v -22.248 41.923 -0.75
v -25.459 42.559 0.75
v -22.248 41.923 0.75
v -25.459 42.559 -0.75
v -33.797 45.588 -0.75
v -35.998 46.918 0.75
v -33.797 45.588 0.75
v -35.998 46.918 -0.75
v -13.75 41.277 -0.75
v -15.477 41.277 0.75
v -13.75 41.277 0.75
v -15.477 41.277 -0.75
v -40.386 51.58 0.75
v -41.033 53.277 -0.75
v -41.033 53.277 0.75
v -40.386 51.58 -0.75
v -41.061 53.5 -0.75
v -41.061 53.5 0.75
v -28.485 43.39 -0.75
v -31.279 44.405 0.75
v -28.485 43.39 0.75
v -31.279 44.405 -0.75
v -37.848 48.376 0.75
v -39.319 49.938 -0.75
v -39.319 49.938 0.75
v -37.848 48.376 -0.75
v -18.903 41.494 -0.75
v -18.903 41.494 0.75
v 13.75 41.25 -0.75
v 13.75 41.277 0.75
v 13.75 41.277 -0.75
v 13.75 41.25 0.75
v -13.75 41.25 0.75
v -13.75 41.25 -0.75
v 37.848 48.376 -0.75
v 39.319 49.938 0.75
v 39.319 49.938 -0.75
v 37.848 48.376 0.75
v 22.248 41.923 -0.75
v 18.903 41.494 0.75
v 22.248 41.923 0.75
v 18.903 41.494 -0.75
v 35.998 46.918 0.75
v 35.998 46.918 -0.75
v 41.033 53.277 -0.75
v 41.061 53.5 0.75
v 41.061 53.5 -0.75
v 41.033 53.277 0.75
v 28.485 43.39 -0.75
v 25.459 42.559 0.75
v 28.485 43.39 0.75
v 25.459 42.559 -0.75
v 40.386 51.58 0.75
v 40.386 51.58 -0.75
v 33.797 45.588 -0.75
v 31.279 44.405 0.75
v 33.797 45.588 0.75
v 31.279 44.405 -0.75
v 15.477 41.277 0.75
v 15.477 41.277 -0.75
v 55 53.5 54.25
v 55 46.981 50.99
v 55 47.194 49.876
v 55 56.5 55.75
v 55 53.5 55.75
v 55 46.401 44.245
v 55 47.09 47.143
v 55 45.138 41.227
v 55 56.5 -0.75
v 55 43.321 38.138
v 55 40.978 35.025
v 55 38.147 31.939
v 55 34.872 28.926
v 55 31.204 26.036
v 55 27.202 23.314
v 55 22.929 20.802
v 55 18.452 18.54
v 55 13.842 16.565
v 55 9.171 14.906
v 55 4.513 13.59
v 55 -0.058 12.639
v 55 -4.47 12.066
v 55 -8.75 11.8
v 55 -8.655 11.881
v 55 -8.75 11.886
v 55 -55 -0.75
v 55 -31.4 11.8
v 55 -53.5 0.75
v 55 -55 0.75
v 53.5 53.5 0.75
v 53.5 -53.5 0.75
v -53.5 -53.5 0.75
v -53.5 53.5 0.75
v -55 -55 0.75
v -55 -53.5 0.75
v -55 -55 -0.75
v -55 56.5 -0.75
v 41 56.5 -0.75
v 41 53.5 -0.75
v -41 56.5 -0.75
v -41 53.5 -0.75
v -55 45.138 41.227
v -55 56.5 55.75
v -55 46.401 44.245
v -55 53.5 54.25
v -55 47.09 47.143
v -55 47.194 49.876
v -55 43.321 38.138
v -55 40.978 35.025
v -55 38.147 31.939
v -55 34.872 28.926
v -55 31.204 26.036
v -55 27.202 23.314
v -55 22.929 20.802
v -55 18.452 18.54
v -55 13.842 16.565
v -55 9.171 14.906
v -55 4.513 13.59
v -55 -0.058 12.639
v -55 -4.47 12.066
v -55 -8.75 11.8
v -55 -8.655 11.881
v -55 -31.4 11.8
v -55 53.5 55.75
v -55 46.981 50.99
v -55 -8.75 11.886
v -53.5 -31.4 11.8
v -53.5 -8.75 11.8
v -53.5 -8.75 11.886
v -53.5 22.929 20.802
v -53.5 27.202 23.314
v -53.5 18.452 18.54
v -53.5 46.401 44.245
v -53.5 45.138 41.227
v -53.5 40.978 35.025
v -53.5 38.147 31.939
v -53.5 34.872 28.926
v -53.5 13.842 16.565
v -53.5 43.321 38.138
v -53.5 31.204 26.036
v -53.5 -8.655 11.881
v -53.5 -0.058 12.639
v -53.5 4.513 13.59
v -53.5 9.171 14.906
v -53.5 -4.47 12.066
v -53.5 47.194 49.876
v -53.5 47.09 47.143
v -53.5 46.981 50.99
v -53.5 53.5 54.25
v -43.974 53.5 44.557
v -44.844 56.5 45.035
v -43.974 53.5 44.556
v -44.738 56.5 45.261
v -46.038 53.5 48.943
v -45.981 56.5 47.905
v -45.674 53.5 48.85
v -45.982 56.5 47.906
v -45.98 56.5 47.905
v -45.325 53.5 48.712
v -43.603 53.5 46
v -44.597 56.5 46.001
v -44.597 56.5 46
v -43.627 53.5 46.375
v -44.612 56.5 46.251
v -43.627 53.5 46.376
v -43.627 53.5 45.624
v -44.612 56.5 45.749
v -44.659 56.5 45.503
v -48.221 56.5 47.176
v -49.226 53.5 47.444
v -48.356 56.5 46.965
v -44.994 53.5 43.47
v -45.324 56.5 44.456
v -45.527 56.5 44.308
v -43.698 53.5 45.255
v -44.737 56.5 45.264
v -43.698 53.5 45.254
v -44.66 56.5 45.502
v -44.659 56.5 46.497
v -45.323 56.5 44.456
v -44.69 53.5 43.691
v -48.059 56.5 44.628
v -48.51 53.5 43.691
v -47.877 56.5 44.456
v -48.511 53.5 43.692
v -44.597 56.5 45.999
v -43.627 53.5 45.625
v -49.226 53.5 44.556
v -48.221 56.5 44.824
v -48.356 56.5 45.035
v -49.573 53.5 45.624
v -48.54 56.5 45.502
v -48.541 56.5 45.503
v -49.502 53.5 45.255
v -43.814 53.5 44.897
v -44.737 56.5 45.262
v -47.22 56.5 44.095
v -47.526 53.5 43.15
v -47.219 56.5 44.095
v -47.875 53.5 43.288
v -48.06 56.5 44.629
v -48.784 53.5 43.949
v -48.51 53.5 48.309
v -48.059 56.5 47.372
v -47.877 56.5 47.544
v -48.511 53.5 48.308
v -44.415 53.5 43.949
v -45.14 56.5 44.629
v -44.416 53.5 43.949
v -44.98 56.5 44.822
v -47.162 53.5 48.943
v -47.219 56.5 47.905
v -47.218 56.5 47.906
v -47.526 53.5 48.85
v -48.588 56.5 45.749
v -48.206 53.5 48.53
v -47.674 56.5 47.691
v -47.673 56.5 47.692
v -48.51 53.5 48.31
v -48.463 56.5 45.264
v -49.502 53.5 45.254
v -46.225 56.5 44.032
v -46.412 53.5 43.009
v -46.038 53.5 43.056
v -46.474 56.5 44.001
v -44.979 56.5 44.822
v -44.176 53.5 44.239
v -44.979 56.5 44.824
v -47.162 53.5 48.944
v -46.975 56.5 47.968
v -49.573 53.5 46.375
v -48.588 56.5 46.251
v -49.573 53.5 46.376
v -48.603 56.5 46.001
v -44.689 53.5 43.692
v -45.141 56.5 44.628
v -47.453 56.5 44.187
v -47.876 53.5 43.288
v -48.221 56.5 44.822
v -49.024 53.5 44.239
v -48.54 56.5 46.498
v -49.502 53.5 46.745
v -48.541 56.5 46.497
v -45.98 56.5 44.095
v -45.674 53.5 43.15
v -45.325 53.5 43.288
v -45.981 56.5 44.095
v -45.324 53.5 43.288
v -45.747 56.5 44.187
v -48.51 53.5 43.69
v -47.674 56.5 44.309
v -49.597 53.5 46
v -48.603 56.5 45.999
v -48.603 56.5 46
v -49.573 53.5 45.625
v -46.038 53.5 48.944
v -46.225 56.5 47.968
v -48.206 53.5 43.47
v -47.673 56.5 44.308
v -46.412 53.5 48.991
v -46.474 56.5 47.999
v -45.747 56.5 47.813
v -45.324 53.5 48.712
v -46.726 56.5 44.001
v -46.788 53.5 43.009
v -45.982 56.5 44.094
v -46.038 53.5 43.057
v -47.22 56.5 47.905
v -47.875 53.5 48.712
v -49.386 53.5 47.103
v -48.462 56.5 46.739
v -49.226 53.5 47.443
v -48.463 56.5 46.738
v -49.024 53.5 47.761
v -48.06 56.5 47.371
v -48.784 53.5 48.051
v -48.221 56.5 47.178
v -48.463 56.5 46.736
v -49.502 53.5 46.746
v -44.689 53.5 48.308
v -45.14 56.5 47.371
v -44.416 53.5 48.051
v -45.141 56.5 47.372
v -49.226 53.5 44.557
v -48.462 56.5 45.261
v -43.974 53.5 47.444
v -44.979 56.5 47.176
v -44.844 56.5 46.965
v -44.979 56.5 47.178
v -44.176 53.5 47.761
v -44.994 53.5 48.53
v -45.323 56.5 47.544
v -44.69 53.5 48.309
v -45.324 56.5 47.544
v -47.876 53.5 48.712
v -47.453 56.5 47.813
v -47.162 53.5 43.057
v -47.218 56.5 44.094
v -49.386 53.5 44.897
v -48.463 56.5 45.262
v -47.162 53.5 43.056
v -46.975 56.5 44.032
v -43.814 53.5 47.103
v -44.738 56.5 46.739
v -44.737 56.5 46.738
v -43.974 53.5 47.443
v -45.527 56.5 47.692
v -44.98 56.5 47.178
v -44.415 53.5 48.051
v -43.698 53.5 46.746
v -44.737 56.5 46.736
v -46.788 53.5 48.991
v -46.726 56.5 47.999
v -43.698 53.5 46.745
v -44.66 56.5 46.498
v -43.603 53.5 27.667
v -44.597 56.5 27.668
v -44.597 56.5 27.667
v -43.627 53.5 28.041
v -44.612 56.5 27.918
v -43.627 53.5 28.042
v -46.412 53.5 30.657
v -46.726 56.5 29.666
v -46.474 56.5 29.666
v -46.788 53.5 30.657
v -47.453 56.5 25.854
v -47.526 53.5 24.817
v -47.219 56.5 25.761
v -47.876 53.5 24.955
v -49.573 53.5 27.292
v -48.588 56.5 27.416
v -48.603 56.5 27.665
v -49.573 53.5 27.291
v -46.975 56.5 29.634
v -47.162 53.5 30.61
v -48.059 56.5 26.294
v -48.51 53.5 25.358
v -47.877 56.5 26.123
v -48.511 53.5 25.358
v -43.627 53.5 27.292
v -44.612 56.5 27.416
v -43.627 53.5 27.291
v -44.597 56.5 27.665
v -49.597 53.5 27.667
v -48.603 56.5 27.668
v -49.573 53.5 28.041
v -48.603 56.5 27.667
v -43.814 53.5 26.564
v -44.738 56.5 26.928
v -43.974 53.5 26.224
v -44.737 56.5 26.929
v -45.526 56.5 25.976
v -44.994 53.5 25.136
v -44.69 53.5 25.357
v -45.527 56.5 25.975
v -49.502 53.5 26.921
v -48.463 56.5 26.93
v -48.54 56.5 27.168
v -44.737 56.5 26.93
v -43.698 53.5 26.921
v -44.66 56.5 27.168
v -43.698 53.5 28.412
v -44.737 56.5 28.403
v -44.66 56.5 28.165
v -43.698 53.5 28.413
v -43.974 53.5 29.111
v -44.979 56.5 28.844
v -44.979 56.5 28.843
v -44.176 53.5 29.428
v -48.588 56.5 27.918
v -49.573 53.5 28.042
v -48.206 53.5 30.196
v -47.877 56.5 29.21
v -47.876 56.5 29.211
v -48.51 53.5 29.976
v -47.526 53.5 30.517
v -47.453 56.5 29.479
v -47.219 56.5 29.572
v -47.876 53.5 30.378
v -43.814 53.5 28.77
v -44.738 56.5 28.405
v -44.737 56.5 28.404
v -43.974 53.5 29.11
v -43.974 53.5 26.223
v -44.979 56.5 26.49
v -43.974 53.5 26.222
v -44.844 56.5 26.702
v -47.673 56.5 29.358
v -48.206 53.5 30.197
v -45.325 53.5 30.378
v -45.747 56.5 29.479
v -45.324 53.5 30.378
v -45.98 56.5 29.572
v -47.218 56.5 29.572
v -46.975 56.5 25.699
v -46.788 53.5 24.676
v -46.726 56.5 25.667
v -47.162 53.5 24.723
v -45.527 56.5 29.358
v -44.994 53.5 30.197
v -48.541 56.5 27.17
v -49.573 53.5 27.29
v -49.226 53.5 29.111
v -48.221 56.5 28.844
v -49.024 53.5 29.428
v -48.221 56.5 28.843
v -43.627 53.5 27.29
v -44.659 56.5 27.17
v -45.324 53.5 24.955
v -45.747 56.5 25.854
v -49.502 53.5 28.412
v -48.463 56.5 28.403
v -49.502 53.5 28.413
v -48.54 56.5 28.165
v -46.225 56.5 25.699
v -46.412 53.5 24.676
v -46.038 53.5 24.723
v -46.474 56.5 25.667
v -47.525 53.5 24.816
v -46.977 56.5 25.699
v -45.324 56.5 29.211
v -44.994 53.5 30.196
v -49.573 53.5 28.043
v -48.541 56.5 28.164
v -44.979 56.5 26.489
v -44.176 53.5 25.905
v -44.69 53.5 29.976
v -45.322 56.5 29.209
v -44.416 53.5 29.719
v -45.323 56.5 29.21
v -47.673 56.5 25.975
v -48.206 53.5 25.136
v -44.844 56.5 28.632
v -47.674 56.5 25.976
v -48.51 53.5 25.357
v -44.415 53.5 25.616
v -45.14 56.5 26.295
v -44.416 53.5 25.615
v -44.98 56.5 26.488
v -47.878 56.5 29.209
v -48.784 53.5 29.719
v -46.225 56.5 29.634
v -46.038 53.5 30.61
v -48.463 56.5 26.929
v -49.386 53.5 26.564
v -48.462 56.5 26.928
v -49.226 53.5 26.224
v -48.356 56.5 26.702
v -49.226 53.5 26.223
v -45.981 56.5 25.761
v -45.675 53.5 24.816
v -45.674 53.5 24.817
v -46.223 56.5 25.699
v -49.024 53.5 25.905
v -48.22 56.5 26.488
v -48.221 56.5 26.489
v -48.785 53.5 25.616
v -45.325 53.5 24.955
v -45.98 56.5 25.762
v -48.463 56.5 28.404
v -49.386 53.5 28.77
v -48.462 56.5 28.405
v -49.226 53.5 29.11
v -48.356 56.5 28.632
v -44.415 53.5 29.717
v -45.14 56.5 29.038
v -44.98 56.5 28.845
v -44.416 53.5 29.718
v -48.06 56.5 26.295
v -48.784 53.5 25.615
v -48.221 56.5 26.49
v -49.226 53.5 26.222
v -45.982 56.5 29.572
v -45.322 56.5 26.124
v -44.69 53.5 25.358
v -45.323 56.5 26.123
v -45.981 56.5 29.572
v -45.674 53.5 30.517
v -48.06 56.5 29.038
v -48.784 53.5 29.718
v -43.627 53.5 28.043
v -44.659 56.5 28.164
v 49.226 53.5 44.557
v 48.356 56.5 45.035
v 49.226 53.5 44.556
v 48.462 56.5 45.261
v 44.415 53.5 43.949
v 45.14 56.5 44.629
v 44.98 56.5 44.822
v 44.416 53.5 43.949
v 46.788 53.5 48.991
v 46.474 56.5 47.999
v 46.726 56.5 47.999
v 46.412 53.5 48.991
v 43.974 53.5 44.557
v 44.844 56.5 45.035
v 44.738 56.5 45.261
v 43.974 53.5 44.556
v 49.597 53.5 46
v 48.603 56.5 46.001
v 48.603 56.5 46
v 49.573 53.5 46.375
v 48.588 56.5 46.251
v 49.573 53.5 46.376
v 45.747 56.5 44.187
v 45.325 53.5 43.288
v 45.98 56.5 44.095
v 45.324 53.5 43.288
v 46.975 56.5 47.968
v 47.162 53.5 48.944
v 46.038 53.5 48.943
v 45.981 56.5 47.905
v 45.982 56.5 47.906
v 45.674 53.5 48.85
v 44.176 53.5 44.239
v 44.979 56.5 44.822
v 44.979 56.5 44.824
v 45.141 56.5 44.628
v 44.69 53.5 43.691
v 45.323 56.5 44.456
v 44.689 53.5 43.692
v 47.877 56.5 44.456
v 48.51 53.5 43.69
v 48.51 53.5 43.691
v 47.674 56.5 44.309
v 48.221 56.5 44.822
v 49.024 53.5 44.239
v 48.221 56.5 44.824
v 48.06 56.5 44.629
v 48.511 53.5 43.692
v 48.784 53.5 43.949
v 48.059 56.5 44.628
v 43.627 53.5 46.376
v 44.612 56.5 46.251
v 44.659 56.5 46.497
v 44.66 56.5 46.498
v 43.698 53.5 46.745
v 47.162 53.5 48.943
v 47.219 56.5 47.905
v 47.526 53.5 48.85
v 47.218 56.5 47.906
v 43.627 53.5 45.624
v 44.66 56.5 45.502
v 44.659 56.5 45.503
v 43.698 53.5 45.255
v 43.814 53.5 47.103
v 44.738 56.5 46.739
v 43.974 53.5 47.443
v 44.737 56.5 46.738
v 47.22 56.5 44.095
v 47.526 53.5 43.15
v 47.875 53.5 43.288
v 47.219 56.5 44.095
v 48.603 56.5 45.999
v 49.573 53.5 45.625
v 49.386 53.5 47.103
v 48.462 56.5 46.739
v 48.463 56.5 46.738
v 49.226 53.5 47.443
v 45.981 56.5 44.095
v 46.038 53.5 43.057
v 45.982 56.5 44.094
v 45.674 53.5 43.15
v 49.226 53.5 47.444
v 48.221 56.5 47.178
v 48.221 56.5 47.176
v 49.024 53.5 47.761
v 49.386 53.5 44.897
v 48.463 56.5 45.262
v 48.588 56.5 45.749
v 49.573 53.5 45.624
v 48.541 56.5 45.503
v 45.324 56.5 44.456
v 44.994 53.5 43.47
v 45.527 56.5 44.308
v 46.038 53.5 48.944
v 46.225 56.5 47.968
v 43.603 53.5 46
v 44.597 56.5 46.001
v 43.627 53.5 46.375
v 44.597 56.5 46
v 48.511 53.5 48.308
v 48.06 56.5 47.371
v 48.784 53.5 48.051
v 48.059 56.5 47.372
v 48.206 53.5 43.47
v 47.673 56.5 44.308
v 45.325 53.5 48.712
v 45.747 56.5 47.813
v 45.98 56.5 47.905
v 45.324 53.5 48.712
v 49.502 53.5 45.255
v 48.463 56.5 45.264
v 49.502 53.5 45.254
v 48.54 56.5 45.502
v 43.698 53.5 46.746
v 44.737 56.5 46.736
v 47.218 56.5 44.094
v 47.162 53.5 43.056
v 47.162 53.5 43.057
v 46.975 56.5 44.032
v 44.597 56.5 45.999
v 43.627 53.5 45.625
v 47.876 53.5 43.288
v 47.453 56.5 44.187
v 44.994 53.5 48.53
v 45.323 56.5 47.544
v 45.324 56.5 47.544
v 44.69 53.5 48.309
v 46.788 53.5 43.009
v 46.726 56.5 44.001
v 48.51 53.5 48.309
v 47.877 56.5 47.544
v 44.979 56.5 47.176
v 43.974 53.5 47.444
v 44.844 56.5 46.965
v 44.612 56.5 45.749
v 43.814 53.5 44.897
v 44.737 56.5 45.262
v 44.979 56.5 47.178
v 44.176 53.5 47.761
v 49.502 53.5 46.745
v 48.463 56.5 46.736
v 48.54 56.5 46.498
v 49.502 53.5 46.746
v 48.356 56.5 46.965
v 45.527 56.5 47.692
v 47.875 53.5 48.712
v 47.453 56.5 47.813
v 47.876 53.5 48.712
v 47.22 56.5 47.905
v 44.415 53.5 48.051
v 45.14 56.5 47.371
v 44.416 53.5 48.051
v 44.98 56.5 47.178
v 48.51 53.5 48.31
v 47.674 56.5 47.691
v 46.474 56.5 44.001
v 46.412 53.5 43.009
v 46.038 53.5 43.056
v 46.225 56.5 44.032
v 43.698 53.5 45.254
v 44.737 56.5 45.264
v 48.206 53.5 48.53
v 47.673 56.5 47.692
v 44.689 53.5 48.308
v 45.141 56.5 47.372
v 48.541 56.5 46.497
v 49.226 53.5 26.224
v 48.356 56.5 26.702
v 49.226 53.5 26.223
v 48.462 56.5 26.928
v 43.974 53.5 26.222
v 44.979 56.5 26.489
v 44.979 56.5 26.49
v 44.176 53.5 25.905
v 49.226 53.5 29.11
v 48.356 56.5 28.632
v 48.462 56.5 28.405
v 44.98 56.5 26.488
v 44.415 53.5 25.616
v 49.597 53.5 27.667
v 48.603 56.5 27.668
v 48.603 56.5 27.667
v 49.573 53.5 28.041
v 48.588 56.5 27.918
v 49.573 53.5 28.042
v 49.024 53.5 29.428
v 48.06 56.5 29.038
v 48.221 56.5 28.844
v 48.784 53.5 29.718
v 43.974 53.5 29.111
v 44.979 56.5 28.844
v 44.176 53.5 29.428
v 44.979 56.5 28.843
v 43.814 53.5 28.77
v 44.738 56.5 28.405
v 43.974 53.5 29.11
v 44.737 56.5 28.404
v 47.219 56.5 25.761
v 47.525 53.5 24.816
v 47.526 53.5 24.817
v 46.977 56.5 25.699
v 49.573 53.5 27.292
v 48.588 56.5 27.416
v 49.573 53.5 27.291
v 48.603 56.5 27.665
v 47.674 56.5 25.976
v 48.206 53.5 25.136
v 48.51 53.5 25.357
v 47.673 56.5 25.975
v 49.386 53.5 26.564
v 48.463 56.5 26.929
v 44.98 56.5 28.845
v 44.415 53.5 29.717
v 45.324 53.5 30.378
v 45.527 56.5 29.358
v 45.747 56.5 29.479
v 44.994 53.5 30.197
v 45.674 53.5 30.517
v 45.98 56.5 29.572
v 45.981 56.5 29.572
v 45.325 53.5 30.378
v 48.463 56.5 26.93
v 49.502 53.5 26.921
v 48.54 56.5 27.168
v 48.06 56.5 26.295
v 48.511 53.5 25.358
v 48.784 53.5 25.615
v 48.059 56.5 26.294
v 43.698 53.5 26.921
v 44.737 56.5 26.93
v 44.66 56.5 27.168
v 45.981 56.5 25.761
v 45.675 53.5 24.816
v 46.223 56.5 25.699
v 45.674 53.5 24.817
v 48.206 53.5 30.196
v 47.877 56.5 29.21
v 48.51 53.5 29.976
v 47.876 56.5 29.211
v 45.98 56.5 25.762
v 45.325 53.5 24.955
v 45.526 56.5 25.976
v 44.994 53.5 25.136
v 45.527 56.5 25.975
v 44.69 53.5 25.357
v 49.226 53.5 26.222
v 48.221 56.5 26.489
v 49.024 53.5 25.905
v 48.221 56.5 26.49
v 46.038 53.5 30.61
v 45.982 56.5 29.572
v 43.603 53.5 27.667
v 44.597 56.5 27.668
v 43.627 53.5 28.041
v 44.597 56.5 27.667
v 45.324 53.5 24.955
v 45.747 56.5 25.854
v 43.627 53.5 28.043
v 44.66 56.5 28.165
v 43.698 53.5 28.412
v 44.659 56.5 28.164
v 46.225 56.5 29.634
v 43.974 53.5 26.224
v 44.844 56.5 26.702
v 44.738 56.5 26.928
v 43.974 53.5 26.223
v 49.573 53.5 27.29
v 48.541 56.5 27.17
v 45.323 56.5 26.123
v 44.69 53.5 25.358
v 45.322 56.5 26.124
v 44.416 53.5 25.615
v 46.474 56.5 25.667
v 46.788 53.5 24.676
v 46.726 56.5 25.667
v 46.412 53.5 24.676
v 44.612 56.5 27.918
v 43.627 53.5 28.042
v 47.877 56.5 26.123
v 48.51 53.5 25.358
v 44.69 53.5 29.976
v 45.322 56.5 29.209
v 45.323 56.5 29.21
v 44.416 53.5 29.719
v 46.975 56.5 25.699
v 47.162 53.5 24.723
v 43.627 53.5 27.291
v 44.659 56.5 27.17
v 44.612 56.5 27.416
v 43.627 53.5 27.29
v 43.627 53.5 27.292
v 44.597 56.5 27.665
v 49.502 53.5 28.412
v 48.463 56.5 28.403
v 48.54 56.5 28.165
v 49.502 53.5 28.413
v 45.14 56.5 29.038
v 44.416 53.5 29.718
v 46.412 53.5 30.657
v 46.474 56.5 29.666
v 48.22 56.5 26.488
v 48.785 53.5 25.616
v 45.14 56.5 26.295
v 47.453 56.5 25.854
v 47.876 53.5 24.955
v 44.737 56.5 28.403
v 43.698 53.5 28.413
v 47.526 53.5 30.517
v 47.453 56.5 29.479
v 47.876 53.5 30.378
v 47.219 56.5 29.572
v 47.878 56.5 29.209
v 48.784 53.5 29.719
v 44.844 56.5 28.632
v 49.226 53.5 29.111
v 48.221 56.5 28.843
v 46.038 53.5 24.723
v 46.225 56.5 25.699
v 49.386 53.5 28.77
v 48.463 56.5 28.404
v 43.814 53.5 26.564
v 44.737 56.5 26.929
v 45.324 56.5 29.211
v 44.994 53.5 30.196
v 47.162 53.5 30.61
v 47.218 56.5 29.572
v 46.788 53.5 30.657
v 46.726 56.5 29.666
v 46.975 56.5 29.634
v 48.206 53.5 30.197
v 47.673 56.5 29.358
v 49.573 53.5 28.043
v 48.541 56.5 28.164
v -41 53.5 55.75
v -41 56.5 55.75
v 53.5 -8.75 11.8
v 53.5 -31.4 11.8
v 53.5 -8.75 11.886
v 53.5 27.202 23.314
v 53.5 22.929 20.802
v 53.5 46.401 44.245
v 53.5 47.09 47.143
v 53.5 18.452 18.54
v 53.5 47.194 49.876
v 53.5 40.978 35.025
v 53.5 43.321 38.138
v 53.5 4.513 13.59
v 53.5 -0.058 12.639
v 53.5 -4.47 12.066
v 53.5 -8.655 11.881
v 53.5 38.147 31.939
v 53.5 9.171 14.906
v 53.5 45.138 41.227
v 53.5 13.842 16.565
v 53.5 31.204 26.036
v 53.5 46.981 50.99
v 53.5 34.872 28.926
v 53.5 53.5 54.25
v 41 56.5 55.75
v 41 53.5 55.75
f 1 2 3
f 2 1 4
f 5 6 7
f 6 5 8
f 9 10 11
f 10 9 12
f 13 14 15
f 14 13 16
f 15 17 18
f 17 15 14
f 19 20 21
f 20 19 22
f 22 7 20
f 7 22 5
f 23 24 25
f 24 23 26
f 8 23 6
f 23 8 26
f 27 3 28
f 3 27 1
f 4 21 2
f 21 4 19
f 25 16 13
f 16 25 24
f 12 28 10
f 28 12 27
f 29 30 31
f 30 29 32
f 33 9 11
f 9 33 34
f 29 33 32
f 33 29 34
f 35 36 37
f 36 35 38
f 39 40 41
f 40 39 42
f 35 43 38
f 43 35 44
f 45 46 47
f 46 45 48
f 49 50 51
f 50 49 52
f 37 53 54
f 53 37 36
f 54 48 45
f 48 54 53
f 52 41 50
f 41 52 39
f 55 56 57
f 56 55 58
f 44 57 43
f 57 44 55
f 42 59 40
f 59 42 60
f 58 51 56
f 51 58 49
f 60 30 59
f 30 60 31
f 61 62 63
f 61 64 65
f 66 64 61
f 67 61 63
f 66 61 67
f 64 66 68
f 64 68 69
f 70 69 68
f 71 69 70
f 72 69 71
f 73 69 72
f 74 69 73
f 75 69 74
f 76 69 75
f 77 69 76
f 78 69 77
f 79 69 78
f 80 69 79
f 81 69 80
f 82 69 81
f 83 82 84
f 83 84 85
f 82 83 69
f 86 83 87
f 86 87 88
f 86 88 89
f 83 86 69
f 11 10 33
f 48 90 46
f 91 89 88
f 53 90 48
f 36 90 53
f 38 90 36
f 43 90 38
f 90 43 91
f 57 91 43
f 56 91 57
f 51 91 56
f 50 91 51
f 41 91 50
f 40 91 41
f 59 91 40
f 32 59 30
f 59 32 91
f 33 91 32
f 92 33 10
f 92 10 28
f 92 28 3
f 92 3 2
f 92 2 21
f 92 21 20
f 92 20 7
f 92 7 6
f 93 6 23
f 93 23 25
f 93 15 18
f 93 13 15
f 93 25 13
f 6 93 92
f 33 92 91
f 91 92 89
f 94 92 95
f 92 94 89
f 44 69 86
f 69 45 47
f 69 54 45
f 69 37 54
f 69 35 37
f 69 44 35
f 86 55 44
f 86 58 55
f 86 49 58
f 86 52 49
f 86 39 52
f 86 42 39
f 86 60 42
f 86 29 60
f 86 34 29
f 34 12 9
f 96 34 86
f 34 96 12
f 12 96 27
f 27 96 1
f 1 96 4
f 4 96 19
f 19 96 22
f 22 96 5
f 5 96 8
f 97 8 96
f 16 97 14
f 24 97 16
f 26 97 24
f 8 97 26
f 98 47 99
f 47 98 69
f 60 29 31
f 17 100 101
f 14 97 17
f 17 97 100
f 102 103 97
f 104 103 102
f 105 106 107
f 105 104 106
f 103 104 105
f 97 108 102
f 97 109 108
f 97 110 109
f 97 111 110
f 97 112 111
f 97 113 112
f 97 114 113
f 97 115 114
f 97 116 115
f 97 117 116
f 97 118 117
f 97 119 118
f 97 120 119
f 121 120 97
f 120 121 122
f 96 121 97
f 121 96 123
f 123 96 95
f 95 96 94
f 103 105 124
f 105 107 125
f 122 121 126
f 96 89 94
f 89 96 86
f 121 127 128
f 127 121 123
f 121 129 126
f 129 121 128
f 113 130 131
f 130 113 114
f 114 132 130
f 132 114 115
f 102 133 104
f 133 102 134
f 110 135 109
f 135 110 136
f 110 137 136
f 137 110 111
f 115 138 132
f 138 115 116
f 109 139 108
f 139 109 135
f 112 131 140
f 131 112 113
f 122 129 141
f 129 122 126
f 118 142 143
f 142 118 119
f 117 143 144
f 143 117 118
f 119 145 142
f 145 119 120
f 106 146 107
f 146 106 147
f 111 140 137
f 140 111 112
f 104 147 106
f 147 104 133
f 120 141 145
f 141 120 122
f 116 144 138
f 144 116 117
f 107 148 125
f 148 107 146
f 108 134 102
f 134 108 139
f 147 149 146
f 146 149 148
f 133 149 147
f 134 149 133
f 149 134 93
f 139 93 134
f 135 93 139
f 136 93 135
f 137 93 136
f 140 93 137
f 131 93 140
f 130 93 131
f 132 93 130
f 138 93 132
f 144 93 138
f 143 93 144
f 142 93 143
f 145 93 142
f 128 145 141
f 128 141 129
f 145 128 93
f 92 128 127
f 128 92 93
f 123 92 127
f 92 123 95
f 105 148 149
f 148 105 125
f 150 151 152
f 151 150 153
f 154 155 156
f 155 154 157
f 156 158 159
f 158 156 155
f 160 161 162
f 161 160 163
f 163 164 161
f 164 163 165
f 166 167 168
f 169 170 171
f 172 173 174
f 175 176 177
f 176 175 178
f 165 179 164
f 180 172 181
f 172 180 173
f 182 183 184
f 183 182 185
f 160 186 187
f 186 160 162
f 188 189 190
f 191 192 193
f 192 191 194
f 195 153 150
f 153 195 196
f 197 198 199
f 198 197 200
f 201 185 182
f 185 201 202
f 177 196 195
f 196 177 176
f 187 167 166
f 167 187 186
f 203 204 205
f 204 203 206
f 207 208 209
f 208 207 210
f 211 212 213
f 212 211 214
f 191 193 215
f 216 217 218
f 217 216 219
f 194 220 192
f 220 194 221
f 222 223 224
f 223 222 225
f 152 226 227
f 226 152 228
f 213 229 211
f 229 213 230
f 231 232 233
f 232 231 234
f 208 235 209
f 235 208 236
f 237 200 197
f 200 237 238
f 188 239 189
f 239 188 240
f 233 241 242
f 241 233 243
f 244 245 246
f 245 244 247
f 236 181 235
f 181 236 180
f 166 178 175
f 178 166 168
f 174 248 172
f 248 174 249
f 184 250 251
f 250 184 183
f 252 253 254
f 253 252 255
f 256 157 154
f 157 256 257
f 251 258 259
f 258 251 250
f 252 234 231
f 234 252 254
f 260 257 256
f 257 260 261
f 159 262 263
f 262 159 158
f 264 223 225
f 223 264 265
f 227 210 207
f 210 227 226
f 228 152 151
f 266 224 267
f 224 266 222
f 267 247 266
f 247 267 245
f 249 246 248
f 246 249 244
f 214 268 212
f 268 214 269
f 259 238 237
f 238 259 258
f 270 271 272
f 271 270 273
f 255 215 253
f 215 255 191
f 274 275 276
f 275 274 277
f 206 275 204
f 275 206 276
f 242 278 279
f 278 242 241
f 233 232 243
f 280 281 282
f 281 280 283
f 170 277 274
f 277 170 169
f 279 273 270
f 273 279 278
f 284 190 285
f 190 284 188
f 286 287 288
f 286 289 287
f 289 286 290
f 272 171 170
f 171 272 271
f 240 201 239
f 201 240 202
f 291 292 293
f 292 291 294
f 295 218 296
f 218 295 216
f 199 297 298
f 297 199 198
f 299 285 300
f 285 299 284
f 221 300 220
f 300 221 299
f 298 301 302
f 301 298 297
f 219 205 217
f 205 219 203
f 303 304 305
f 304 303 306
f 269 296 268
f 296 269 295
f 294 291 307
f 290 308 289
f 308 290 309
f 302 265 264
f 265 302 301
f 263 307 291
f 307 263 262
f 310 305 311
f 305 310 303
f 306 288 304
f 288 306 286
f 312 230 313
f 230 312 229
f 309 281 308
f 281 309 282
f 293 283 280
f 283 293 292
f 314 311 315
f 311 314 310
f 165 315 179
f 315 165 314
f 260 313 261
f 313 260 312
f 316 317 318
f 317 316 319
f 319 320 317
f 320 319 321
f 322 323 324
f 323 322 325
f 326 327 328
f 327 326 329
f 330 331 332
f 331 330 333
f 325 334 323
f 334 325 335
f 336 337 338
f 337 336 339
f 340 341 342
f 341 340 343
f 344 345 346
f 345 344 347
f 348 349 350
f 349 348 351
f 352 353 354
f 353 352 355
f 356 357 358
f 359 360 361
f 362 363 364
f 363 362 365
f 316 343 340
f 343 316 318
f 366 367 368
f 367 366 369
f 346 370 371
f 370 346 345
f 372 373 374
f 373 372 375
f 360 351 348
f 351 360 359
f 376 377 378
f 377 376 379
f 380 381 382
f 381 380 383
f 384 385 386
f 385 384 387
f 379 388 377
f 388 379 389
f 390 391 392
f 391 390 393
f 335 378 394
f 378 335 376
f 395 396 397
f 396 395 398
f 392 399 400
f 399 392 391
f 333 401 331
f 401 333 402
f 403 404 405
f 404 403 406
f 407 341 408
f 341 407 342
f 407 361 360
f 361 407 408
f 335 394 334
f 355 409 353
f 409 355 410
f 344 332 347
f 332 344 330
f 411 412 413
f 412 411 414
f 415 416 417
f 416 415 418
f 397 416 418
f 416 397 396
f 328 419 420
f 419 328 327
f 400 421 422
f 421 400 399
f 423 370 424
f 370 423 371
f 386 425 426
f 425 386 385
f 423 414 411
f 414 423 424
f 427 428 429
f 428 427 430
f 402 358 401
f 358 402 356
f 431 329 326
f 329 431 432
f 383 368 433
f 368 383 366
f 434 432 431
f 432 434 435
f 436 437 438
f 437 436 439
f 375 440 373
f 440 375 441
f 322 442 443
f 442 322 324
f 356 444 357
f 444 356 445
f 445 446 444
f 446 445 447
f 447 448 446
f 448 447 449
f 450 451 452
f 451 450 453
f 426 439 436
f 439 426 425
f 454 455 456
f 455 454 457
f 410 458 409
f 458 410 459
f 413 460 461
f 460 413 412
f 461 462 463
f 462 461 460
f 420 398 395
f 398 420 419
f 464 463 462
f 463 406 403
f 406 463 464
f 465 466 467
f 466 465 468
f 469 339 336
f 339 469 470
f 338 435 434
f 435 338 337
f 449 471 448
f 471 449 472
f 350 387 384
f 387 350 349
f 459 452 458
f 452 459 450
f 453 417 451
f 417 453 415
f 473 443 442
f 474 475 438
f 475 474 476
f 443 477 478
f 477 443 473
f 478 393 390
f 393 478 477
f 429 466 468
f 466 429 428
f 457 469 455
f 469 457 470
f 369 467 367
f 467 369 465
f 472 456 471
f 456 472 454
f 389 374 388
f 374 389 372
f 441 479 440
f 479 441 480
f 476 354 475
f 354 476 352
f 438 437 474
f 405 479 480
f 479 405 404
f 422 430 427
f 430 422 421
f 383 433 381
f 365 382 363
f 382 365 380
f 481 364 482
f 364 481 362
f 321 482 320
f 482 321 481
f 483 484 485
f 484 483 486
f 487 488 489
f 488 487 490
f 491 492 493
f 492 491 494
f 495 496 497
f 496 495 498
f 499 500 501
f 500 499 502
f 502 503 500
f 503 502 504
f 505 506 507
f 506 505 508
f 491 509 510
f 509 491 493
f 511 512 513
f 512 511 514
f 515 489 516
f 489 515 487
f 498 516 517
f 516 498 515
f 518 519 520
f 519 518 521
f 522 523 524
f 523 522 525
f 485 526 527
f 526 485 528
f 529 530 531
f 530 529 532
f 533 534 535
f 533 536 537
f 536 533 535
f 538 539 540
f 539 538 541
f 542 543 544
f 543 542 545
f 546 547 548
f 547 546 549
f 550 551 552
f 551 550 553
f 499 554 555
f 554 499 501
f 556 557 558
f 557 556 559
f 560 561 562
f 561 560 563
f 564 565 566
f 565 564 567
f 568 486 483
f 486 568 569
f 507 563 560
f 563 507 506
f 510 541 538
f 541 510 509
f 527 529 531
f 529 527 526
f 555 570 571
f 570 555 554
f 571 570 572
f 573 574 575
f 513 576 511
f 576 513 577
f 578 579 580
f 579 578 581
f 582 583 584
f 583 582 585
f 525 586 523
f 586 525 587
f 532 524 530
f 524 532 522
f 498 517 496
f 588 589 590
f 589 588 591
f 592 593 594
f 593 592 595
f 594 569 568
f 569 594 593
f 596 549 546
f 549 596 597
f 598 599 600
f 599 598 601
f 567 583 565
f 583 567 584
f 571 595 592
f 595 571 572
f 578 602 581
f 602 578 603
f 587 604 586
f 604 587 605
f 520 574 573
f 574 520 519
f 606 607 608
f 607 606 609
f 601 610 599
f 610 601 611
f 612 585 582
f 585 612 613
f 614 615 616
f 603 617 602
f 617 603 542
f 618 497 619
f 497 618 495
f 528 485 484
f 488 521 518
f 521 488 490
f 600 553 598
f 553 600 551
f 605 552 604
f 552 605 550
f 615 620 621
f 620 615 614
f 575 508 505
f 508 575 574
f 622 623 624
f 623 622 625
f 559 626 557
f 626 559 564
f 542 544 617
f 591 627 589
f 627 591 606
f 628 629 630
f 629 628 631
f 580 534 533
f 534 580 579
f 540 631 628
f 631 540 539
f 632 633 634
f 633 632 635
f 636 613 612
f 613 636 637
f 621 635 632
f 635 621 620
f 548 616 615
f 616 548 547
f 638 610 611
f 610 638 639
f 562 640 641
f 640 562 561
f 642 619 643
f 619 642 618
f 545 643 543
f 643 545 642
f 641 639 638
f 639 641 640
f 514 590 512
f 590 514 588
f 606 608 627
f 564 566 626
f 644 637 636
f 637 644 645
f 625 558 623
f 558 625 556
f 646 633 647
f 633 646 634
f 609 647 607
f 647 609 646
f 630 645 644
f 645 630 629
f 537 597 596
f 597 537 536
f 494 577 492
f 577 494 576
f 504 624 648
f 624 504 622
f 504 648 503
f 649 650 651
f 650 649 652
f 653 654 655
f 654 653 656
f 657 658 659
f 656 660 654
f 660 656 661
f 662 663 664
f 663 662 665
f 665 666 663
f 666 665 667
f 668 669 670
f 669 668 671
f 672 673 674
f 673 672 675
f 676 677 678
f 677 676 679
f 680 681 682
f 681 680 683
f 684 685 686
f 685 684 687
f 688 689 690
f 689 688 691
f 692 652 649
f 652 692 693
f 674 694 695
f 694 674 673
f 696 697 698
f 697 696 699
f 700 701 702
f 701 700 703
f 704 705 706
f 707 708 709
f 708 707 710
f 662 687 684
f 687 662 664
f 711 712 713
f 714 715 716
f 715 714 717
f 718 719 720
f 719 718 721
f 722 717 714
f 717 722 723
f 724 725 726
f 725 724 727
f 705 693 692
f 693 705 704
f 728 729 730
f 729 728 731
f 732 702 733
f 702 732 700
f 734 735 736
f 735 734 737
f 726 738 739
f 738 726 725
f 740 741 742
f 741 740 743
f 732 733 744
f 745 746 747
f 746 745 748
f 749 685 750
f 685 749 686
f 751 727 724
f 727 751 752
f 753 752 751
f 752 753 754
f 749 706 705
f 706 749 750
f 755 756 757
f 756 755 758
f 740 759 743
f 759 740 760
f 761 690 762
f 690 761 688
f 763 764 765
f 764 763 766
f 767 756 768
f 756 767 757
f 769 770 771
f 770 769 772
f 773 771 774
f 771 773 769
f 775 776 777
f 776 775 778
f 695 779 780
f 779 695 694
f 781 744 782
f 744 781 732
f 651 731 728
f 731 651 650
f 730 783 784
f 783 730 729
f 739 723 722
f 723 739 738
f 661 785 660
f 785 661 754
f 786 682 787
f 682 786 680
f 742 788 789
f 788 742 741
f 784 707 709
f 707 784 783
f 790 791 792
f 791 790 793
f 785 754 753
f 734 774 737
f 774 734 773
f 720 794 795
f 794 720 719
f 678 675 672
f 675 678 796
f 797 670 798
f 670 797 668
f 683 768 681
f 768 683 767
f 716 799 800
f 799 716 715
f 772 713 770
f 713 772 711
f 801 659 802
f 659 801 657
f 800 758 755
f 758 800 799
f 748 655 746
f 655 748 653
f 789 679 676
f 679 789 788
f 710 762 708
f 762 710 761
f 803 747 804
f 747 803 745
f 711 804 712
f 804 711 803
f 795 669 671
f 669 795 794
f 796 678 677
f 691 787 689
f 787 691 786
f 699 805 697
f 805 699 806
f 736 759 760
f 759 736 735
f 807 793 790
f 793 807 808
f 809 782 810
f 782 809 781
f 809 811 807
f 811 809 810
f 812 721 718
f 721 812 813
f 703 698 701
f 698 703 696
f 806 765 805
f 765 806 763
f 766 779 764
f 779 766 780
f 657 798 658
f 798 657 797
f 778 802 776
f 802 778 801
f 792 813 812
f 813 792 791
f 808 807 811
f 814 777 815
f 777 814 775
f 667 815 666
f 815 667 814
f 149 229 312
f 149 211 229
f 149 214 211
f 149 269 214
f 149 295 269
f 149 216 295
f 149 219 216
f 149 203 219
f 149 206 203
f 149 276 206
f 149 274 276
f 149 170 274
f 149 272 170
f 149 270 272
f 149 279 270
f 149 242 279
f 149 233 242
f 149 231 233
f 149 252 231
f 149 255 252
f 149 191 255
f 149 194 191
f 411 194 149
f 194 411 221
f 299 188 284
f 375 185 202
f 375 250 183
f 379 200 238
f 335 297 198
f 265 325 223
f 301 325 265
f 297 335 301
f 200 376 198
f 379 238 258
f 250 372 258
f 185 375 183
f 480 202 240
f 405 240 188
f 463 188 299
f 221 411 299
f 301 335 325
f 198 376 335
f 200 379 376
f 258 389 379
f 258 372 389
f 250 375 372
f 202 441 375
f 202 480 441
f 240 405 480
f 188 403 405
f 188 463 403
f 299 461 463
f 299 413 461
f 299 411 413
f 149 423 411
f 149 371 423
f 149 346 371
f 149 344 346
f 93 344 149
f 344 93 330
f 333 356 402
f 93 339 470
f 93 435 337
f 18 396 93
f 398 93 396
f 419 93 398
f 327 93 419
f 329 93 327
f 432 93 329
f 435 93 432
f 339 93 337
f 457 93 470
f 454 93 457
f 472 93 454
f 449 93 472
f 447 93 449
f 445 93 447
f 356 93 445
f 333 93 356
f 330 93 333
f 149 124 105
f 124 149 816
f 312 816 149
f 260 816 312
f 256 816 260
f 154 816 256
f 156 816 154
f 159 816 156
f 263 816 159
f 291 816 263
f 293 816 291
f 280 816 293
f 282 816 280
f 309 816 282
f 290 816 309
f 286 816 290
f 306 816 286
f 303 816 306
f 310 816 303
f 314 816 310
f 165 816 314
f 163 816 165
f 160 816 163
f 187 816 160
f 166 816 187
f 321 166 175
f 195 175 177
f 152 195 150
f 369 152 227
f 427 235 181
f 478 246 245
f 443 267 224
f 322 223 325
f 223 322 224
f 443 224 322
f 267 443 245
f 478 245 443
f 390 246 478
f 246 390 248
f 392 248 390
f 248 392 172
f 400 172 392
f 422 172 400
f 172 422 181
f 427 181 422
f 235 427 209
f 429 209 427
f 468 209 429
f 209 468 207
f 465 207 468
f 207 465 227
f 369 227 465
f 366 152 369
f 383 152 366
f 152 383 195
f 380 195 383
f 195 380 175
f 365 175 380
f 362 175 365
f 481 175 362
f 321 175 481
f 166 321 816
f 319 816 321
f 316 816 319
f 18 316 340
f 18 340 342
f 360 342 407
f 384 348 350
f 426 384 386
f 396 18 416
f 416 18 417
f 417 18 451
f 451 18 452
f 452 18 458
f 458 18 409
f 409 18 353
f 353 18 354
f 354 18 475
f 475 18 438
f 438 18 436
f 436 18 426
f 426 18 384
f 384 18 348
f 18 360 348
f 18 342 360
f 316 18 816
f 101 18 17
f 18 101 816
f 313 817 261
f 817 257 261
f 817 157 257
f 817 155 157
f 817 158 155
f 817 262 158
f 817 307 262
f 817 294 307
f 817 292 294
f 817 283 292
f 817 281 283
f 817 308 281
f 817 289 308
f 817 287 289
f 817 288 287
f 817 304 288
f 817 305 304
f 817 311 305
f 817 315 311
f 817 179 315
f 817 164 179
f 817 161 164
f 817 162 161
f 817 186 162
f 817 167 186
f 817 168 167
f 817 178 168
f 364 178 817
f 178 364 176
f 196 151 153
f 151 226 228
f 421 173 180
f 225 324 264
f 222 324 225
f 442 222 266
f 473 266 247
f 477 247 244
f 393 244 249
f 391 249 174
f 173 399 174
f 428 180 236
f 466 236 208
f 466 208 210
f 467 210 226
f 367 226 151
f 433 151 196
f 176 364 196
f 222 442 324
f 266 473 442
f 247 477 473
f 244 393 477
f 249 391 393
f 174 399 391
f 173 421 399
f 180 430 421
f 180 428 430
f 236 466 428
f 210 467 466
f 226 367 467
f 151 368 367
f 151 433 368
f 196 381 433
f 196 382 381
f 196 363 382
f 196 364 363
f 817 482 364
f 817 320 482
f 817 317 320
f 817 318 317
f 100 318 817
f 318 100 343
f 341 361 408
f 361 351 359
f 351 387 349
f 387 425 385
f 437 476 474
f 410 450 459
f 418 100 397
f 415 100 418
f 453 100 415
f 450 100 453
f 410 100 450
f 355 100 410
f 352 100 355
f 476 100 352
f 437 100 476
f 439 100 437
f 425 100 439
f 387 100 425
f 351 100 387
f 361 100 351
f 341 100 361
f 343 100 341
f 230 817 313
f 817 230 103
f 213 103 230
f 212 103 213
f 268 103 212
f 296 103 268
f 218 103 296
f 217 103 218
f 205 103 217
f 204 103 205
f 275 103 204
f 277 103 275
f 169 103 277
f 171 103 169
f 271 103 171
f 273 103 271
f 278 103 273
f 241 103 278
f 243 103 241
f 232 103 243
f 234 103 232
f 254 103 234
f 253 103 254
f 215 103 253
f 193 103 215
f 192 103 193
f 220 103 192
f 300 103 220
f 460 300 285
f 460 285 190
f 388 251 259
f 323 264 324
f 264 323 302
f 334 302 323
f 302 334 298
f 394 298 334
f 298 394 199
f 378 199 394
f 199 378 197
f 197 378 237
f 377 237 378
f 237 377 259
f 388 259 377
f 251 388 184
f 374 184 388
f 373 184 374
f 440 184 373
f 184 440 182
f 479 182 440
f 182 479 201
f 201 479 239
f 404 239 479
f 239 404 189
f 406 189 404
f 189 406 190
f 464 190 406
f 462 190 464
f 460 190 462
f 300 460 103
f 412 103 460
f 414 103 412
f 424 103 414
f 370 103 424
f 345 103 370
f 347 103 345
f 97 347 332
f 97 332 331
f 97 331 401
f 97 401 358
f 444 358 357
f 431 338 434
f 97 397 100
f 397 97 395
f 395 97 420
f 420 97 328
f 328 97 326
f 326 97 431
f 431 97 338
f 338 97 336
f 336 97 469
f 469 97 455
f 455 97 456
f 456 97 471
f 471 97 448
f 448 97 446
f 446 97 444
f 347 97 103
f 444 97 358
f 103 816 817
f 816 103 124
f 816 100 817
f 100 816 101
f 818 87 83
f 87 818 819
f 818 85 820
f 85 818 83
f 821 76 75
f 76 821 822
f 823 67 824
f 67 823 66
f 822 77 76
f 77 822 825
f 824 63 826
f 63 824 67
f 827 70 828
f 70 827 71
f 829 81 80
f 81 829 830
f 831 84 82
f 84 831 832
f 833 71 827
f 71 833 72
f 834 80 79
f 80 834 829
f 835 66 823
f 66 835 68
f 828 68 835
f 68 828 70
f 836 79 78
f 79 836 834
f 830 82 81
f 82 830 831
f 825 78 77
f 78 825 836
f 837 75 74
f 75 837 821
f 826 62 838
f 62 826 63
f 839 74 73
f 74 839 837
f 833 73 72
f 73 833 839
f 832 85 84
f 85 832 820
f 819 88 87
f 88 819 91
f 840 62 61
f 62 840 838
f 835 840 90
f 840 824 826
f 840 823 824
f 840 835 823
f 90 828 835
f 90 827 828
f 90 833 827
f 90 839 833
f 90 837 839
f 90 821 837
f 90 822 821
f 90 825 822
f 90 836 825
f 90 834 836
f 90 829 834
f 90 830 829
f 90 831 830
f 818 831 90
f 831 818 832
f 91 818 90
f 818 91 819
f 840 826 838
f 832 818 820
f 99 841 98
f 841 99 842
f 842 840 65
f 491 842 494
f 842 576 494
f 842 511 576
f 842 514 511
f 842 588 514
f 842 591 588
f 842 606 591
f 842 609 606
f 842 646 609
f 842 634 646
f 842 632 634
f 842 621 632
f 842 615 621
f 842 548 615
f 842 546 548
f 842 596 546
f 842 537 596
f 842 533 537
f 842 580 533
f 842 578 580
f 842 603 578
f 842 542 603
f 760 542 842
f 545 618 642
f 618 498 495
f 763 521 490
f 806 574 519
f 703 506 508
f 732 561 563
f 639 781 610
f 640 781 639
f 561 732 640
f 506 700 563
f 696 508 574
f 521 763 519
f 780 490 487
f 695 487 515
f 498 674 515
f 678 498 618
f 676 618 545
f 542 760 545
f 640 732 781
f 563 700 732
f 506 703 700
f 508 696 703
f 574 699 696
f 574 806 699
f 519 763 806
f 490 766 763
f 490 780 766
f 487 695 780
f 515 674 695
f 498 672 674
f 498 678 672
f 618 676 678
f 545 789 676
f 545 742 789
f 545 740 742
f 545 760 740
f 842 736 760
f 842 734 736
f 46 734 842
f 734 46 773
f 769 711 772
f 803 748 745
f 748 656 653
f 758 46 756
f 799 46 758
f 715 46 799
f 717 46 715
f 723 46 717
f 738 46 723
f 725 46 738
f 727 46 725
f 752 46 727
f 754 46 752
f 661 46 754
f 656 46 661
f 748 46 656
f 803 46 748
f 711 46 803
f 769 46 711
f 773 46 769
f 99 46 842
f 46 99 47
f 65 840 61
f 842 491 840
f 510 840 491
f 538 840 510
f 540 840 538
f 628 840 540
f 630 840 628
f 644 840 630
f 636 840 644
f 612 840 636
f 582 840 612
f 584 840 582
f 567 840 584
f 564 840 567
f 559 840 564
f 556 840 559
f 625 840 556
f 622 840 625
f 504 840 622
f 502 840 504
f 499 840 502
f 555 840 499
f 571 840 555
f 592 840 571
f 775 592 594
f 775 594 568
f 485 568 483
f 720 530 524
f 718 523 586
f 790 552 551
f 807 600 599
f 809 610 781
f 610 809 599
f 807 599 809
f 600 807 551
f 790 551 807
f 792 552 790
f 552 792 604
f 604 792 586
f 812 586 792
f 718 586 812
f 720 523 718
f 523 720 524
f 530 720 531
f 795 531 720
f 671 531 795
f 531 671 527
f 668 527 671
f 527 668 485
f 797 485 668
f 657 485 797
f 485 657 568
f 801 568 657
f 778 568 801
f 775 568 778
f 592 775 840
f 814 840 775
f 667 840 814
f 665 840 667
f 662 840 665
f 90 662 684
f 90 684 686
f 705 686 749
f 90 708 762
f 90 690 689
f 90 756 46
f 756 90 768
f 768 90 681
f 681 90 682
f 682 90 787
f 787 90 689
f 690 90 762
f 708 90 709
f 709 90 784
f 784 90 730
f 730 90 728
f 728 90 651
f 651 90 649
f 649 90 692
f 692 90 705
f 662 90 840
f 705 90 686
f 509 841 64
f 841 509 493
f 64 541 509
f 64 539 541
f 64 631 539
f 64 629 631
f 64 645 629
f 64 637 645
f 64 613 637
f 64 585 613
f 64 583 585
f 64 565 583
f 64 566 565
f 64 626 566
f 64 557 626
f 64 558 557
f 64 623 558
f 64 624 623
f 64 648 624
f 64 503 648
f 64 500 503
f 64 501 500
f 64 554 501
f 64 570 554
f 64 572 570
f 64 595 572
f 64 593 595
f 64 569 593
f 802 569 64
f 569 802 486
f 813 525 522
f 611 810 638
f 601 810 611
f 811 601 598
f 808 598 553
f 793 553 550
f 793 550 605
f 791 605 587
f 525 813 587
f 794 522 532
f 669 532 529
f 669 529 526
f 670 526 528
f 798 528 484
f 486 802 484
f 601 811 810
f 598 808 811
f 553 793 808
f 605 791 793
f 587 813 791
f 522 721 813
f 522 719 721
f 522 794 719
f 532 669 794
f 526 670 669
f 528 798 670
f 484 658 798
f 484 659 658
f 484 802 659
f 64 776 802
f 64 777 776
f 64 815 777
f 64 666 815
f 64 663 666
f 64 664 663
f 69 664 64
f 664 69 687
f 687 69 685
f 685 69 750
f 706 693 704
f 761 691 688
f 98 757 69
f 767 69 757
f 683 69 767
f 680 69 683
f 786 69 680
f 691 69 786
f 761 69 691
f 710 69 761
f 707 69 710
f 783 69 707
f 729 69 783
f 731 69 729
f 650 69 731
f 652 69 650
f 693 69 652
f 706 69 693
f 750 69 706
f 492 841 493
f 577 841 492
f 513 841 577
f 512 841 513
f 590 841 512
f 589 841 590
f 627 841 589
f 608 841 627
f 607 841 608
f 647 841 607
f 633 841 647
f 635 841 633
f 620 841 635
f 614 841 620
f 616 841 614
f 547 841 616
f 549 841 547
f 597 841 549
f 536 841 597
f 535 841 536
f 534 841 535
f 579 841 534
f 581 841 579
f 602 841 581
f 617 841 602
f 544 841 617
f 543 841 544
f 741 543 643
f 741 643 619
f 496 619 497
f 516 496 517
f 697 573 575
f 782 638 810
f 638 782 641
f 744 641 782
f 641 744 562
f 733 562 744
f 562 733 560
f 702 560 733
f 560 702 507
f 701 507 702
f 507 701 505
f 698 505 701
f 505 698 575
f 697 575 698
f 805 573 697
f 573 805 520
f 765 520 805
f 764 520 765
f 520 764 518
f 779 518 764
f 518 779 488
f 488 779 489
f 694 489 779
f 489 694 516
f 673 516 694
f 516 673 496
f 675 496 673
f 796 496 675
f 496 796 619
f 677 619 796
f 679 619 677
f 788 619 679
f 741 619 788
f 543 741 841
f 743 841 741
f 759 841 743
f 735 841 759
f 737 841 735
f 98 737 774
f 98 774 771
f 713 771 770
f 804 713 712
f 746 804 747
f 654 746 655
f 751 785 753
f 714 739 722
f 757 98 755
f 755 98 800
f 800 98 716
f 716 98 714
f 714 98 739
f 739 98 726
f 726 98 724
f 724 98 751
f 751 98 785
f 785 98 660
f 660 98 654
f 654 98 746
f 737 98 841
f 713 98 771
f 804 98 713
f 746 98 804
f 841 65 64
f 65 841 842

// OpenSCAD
// This is a tray to hold my modem a little higher
// For better reception
$fn=50;
width = 110;
height = width;
thick = 1.5;
support_height = height/2;
support_width = 14;
wall_support_thick = thick*2;
eps=0.01;

Tray();
for (x = [-1, 1]) {
  Arm(x);
}

module Tray() {
  difference() {
    cube([width, height, thick], center=true);

    for (x = [-1, 0, 1]) {
      TrayCutout(x);
    }
  }
}

// The TrayCutout is two ovals and a square put together
// Dir is -1, 0, 1 for the left oval, square, right oval.
module TrayCutout(dir) {
  circle_r = height/2;
  translate_x = 1/8;
  transform_x = 1;
  transform_y = 1/2;
  new_w = width*translate_x*2;
  if (dir == 0) {
    translate([0, circle_r, 0])
      cube([new_w, circle_r*transform_y, thick*2], center=true);
  } else {
    translate([dir*width*translate_x, height/2, 0])
      scale([transform_x, transform_y, 1])
        linear_extrude(height=thick*2, center=true)
          circle(d=circle_r);
  }
}

// The arms are -1, 1 for the left and right triangles
// They include the wall support in the back.
module Arm(dir) {
  difference() {
    Triangle(dir);
    TriangleCutout(dir);
  }
  difference() {
    WallSupport(dir);
    for (x = [-1, 1]) {
      for (y = [0, 1]) {
        DrillHole(x, y);
      }
    }
  }
}

module Triangle(dir) {
  translate([dir*(width/2 - thick/2), height/2, 0])
    rotate([-90, 0, 90])
      linear_extrude(height=thick, center=true)
        polygon(points=[
          [0, 0],
          [0, -support_height],
          [-width, 0]],
          paths=[[0,1,2]]);
}

// TriangleCutout is a rotated ellipse and a block.
// Had to eyeball a lot of it.
module TriangleCutout(dir) {
  radius = 10;
  eyeball_x = 5;
  eyeball_height = 11.8;
  eyeball_angle = 25;
  translate([dir*width/2, -width/4+eyeball_x, height/8+eyeball_height])
    rotate([0, -90, 0])
      cube([width/4, height/4, thick*3], center=true);
  translate([dir*width/2, 10, height/3])
    rotate([eyeball_angle, 0, 0])
      scale([1, 4, 2])
        rotate([0, 90, 0])
          linear_extrude(height=3*thick, center=true)
            circle(r=radius);
}

module WallSupport(dir) {
  translate([dir*(width/2 - support_width/2), height/2,
      support_height/2 ])
    rotate([90, 0, 0])
      cube([support_width, support_height+thick, wall_support_thick], center=true);
}

module DrillHole(x, y) {
  radius=6/2;
  hole_thick=wall_support_thick+2*eps;
  #translate([
      x * (width/2 - radius*2.8),
      width/2+hole_thick/2,
      height/2 - radius*3 - (y*height/6)])
    rotate([90, 0, 0])
      cylinder(h=hole_thick, r1=radius*2/3, r2=radius);
}
